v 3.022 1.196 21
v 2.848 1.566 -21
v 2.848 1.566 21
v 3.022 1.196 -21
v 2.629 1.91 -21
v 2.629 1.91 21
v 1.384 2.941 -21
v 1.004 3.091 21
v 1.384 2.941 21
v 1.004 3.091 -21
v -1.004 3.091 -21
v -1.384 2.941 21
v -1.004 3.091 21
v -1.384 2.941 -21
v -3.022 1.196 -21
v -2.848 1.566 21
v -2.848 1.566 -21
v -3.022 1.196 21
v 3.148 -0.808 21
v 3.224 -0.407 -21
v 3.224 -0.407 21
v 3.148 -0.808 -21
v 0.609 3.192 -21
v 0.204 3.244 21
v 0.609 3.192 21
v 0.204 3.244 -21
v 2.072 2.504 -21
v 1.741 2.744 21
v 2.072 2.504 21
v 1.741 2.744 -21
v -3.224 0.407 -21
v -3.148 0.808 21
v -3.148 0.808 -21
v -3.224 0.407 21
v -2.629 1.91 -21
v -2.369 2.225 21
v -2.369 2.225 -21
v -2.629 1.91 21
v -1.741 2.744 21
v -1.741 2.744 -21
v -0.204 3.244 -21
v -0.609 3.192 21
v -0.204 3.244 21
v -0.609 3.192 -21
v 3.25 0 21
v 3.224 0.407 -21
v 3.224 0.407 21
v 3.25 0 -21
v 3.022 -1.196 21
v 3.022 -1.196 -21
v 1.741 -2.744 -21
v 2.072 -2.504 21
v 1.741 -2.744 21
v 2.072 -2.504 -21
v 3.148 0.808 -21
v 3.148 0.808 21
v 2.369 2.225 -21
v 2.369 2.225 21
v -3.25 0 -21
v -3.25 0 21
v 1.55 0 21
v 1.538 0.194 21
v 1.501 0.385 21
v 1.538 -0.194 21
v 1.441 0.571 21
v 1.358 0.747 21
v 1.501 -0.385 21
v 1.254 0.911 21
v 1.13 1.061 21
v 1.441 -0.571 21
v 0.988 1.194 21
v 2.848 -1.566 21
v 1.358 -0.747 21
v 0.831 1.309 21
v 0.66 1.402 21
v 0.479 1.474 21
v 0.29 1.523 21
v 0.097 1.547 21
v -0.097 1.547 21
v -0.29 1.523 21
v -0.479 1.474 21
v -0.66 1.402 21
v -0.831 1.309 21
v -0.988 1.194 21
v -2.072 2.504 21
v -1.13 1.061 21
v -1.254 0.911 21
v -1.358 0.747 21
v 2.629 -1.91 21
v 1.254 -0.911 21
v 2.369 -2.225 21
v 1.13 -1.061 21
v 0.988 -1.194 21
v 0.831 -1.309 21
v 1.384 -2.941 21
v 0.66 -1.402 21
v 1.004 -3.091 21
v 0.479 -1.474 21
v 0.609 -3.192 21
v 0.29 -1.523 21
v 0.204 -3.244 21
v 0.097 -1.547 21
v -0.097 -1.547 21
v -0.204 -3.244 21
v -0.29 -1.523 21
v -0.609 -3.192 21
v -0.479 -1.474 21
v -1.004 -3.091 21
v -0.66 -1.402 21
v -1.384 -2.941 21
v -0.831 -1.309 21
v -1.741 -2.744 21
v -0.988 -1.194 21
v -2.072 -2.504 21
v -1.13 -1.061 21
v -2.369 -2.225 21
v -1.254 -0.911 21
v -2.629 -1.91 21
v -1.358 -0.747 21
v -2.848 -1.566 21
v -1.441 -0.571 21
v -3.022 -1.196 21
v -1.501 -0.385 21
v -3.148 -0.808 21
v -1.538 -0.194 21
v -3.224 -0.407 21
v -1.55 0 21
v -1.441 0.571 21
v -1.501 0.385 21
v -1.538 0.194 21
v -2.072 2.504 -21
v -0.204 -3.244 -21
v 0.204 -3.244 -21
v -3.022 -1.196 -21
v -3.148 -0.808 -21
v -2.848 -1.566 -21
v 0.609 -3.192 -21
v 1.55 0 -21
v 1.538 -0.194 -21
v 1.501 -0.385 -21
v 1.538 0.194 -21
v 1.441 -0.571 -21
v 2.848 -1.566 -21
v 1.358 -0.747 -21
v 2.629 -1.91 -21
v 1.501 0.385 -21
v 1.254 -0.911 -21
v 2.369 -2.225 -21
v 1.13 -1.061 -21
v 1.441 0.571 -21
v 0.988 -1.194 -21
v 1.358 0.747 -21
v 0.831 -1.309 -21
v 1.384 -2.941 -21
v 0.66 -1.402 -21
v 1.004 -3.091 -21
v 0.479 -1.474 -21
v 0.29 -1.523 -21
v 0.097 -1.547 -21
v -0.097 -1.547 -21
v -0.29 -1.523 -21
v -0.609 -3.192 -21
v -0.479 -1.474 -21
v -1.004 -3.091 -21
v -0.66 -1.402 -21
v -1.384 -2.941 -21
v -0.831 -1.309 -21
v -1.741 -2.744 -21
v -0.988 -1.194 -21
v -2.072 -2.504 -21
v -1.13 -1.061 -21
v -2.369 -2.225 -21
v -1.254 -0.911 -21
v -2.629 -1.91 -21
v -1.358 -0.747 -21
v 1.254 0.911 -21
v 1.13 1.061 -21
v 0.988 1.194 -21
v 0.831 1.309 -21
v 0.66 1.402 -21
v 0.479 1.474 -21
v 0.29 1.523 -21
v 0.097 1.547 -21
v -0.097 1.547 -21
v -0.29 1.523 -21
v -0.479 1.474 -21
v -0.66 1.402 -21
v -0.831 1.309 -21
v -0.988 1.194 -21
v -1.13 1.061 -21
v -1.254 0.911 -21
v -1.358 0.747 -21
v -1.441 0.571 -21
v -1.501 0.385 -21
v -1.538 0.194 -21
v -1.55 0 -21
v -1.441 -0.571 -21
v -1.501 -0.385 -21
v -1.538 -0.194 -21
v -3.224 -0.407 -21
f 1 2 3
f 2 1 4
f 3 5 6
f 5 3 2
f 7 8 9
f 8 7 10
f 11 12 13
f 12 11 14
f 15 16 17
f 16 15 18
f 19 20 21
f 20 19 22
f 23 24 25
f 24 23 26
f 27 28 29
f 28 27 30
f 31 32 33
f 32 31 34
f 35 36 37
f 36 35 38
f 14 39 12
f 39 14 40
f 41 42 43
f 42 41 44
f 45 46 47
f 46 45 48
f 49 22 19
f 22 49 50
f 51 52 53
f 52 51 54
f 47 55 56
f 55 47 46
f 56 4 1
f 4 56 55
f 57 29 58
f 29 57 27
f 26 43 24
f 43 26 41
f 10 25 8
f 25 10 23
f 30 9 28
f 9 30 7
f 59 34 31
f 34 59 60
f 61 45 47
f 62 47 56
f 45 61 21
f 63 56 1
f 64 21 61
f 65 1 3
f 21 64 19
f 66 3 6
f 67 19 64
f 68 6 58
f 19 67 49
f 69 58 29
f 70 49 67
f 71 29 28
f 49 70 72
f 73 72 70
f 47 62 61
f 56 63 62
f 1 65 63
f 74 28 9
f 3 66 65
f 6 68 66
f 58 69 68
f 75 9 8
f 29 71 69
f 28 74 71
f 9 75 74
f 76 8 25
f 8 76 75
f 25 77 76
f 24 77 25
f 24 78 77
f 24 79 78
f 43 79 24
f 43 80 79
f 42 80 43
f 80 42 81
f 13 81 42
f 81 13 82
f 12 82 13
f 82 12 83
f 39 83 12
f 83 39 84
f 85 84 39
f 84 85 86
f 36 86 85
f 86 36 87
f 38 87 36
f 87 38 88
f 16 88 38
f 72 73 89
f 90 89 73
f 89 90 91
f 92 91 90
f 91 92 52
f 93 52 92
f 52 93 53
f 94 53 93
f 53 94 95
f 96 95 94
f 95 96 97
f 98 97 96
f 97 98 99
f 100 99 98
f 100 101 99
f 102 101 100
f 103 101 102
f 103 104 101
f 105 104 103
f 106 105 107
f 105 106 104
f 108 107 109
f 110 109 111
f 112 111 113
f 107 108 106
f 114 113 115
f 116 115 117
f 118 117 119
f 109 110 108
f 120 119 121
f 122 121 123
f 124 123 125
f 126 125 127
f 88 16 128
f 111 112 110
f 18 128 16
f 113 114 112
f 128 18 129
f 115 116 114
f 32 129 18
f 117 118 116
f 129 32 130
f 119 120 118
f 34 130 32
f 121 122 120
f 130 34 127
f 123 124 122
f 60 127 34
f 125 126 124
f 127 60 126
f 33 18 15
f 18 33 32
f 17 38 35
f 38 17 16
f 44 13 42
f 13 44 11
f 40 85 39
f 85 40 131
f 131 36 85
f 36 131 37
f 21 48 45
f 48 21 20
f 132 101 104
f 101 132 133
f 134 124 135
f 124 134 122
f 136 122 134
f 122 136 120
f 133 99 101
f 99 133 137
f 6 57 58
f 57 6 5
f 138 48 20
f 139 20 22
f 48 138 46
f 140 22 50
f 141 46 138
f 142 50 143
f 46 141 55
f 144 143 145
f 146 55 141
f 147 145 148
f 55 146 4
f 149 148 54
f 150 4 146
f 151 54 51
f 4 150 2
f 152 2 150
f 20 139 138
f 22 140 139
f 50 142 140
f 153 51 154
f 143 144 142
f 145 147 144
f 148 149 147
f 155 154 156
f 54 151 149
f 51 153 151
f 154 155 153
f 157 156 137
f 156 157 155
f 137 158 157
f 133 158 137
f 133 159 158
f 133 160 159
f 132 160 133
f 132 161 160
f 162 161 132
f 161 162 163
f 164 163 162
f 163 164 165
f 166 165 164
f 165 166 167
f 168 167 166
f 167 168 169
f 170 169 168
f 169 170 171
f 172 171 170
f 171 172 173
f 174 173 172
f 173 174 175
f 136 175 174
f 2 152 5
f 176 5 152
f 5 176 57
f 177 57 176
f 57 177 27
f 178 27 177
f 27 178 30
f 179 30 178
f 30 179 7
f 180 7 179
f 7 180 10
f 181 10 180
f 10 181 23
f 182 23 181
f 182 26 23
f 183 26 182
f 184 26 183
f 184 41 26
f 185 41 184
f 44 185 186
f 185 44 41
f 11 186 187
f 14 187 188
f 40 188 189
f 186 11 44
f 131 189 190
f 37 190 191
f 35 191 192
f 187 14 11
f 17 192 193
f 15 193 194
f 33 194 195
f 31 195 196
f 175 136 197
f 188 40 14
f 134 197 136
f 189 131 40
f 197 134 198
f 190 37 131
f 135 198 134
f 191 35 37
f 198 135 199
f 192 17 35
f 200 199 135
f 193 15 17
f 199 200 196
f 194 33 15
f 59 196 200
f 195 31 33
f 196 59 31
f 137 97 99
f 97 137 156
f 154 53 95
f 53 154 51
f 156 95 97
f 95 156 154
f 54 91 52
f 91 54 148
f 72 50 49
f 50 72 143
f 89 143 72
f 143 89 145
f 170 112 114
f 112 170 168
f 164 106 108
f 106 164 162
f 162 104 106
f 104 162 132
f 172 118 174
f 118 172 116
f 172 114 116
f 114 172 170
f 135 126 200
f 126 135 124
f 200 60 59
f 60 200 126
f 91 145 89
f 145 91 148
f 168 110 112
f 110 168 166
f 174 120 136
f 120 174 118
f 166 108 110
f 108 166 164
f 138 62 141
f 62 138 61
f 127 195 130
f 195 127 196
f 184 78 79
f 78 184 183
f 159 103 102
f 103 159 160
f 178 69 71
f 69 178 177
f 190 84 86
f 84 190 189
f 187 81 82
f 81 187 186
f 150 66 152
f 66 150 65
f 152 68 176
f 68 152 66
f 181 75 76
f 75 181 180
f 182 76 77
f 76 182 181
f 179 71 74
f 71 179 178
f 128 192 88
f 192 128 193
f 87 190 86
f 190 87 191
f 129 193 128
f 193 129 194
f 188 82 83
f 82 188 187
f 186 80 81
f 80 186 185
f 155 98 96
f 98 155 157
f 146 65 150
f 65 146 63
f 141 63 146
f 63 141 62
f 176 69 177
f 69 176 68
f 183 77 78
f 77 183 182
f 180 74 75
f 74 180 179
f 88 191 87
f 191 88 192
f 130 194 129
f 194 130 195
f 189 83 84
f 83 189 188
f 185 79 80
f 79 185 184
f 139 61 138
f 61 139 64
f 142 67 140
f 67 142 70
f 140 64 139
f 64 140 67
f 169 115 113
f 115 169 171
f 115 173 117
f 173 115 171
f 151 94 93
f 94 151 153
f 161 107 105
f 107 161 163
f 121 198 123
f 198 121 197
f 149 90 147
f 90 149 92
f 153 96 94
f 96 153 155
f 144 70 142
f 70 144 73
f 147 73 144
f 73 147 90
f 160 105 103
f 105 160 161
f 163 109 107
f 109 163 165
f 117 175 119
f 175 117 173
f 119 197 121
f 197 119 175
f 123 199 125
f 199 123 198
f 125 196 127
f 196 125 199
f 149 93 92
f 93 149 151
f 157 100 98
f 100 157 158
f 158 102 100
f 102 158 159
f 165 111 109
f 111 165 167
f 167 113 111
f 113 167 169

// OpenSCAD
$fn = 50;


difference() {
	union() {
		translate(v = [0, 0, -21.0000000000]) {
			cylinder(h = 42, r = 3.2500000000);
		}
	}
	union() {
		translate(v = [0, 0, -100.0000000000]) {
			cylinder(h = 200, r = 1.5500000000);
		}
	}
}
